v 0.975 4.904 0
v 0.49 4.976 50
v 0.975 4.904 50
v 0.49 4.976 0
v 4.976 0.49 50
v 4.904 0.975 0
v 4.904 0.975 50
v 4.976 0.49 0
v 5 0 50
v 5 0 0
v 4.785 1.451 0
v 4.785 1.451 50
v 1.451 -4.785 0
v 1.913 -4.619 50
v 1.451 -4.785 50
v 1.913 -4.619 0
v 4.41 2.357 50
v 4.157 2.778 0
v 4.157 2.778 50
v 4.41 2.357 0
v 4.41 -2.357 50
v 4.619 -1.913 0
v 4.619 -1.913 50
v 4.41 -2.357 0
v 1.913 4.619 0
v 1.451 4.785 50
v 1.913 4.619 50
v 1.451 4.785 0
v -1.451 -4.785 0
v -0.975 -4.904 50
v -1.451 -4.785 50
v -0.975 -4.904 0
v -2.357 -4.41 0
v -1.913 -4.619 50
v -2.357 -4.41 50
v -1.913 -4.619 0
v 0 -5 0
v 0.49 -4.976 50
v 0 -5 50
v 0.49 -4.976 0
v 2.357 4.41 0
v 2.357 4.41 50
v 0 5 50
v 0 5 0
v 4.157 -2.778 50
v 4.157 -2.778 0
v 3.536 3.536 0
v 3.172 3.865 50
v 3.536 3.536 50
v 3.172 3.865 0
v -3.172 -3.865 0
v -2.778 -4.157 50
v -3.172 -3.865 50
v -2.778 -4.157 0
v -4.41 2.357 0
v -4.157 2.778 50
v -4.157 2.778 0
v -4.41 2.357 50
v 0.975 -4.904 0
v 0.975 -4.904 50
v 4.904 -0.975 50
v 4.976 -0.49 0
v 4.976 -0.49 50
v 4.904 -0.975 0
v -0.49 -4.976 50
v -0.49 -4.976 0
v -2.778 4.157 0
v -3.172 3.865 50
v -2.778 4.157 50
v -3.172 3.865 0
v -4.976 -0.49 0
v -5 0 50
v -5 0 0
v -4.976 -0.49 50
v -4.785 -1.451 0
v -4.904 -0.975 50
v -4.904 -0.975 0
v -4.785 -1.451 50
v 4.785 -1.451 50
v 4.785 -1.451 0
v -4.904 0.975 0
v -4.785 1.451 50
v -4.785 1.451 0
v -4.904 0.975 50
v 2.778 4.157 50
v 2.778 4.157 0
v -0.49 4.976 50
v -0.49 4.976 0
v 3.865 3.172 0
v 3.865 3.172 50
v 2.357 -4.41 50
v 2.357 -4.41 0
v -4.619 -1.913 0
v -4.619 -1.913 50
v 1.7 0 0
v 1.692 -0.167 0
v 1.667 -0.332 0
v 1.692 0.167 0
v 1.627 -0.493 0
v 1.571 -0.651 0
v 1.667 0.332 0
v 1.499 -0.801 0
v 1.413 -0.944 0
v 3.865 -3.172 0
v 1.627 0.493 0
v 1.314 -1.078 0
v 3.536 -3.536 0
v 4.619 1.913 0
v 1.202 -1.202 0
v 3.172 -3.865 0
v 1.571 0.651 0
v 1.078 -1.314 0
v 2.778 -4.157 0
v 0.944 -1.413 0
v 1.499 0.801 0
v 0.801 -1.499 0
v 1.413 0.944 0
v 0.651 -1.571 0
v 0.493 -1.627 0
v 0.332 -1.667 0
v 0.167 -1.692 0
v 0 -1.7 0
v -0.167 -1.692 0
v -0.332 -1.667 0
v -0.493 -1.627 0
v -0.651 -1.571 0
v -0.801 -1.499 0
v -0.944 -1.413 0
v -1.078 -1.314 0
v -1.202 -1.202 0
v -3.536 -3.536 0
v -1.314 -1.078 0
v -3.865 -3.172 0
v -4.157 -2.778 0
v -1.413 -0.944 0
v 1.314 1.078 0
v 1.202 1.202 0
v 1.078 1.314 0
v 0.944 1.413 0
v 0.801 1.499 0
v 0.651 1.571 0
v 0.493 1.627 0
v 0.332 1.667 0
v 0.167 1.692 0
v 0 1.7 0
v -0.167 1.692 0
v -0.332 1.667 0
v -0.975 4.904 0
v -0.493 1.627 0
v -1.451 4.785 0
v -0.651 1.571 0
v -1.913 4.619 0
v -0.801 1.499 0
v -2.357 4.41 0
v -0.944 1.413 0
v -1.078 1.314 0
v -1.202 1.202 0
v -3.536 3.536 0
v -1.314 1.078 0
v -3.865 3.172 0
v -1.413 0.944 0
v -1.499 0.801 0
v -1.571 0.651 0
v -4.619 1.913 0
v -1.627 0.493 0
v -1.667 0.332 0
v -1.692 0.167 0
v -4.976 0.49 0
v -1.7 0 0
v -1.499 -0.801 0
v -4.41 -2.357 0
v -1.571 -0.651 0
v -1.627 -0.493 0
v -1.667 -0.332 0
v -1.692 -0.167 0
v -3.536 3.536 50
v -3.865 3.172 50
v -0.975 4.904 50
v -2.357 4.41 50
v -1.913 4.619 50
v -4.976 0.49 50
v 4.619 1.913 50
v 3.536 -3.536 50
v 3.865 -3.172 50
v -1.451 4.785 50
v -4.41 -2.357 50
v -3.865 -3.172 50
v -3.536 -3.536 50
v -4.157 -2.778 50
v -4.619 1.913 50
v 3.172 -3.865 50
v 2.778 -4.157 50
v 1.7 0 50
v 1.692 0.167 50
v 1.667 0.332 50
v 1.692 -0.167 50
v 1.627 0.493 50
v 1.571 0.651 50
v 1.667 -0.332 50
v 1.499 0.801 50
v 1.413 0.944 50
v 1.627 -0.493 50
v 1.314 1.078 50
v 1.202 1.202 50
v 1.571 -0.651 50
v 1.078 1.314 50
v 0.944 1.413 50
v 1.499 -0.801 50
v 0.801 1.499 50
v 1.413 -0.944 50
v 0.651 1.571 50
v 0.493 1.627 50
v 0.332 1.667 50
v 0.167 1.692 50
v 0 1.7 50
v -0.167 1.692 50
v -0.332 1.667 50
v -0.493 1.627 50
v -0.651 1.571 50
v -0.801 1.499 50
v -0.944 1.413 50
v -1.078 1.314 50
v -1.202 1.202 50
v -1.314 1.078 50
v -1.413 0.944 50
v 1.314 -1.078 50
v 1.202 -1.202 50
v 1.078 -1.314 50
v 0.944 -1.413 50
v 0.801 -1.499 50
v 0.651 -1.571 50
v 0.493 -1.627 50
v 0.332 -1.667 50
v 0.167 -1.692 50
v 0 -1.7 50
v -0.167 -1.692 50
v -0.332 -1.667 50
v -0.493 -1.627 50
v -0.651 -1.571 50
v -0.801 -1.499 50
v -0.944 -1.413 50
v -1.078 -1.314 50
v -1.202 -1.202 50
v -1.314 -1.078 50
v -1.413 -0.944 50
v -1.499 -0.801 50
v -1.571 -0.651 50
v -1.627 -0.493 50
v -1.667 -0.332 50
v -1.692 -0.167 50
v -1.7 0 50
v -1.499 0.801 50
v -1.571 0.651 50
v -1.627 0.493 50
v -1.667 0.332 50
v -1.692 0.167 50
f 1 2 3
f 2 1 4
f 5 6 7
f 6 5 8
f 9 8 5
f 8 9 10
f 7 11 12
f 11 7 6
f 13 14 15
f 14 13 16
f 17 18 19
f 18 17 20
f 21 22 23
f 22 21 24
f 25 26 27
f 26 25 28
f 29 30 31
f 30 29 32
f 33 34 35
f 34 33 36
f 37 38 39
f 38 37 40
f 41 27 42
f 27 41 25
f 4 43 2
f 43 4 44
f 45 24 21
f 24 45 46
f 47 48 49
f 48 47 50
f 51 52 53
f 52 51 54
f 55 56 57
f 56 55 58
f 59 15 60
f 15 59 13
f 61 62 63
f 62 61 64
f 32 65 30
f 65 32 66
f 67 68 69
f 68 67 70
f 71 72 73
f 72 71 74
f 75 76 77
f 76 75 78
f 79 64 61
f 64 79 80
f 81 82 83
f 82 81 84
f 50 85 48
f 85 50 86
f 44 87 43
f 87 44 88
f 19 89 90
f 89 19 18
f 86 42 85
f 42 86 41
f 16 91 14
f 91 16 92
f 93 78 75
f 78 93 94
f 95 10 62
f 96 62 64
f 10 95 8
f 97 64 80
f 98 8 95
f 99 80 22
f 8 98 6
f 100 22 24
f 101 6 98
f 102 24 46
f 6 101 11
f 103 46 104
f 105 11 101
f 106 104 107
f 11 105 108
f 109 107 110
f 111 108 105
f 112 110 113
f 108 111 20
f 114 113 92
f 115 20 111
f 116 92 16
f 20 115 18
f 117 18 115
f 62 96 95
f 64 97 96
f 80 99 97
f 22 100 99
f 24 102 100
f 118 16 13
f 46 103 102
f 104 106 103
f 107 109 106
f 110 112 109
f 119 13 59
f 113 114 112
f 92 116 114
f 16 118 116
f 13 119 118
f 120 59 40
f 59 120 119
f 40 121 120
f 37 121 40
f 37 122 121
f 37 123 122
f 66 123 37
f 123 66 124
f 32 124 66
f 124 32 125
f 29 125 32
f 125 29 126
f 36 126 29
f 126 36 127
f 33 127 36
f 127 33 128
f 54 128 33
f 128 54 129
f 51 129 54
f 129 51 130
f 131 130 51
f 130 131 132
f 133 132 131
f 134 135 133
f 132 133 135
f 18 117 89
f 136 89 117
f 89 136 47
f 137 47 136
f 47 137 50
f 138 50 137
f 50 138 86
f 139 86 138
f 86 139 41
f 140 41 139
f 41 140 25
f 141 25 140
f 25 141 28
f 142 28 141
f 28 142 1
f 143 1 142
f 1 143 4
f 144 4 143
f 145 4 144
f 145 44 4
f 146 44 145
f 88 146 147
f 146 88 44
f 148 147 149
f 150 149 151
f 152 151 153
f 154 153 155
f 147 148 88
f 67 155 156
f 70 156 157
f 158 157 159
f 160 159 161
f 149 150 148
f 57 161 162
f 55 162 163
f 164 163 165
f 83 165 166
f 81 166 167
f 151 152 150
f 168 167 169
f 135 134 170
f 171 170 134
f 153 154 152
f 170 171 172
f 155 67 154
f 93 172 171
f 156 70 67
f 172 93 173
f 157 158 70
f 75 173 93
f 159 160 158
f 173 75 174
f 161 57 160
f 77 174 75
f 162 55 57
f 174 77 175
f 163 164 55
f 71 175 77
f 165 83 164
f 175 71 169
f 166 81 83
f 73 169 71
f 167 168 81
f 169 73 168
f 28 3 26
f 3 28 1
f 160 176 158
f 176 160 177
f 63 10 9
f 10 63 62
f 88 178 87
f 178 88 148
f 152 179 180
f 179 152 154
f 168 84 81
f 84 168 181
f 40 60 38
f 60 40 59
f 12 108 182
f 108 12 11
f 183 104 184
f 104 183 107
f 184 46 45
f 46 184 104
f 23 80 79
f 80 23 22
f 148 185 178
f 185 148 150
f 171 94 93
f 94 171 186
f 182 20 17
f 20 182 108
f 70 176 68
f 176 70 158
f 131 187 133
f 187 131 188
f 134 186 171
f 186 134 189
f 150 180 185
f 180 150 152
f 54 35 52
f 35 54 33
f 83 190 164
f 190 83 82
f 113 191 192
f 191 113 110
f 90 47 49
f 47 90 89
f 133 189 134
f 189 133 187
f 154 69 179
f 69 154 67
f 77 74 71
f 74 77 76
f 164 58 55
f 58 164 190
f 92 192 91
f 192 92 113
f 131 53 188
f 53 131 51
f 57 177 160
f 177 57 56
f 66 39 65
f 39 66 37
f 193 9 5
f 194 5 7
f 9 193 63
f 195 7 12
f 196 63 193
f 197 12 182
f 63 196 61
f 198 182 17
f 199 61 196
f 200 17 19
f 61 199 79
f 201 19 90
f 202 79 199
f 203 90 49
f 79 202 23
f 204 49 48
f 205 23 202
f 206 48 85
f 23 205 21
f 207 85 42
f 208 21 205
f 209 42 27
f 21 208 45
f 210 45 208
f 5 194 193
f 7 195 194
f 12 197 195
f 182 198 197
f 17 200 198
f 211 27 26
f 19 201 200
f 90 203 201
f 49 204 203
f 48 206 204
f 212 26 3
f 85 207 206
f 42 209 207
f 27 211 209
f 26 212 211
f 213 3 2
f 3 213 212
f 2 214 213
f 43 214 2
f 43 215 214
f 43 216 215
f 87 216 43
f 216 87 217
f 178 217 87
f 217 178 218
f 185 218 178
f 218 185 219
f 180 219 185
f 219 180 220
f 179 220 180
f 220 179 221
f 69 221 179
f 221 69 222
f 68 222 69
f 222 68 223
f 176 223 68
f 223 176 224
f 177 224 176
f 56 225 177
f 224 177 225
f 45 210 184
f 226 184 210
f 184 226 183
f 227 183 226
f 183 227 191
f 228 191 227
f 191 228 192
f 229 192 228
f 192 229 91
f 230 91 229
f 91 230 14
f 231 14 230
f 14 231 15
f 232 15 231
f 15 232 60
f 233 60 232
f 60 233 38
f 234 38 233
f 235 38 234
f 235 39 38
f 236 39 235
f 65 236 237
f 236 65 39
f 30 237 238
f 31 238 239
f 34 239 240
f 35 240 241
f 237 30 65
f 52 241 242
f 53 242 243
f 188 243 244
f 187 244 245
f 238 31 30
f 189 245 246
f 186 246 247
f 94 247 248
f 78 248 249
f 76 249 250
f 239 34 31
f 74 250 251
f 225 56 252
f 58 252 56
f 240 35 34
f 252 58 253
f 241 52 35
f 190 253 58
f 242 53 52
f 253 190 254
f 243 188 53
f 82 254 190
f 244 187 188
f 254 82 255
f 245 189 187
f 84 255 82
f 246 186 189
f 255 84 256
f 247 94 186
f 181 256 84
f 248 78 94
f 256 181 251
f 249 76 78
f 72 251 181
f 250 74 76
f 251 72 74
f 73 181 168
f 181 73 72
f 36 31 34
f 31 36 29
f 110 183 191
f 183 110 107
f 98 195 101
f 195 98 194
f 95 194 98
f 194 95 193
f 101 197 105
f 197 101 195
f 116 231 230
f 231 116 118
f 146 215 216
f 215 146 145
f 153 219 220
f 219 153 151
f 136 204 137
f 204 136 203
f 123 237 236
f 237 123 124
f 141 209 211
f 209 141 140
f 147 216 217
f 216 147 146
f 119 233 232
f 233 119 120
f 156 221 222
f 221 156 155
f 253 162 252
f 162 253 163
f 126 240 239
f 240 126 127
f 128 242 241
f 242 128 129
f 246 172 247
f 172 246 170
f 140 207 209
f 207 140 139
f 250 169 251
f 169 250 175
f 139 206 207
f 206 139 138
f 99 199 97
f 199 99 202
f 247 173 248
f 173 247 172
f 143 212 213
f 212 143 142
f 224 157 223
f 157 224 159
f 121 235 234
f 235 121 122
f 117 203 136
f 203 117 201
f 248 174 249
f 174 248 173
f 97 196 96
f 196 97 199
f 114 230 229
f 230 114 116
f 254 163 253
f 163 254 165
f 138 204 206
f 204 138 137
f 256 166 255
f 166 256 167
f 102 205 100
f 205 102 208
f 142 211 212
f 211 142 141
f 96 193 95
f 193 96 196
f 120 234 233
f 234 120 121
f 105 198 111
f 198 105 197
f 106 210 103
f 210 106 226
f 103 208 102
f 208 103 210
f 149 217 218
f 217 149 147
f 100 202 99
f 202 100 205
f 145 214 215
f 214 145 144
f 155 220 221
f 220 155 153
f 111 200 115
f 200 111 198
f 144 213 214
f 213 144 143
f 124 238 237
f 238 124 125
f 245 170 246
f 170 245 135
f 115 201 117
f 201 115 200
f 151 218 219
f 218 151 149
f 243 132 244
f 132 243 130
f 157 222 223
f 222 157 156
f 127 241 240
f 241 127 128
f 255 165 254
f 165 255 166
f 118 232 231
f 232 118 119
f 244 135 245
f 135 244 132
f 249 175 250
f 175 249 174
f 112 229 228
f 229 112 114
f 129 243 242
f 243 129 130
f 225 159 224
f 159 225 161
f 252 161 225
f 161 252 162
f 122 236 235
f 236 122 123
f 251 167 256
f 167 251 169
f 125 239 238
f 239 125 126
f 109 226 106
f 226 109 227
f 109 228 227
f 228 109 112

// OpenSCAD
// file: ../lib.scad
// Solar Rover - shared helper modules
include <config.scad>

// Rounded rectangle plate, centred in XY, sitting on Z=0.
module rbox(size, r=4) {
    x = size[0]; y = size[1]; z = size[2];
    hull() for (sx=[-1,1], sy=[-1,1])
        translate([sx*(x/2-r), sy*(y/2-r), 0]) cylinder(r=r, h=z);
}

// Vertical hole through everything (subtract). Centred on the origin.
module hole(d, h=200) { translate([0,0,-h/2]) cylinder(d=d, h=h); }

// Heat-set insert pocket opening upward at Z=top.
module insert_m3(top) { translate([0,0,top-m3_insert_h]) cylinder(d=m3_insert_d, h=m3_insert_h+0.01); }
module insert_m25(top) { translate([0,0,top-4.5]) cylinder(d=m25_insert_d, h=4.51); }

// Boss for an insert: cylinder from z0 to z1, with insert pocket at the top.
module insert_boss_m3(z0, z1, od=8) {
    difference() {
        translate([0,0,z0]) cylinder(d=od, h=z1-z0);
        insert_m3(z1);
    }
}

// Slot of length l (centre-to-centre) along X, diameter d.
module slot(l, d, h=200) {
    hull() for (sx=[-1,1]) translate([sx*l/2,0,-h/2]) cylinder(d=d, h=h);
}

// Counterbored M3 clearance hole, head at Z=top going down.
module m3_cbore(top, depth=m3_head_h) {
    hole(m3_clear);
    translate([0,0,top-depth]) cylinder(d=m3_head_d, h=depth+50);
}

// Captive hex nut pocket, opening at Z=z (nut goes in from that face).
module m3_nut_pocket(z, depth=m3_nut_h+0.4) {
    translate([0,0,z-depth]) cylinder(d=m3_nut_af/cos(30), h=depth+0.01, $fn=6);
}

// Pair of zip-tie slots (for modules without mounting holes), spaced s apart along X.
module zip_slots(s=30, w=4, l=2.2) {
    for (sx=[-1,1]) translate([sx*s/2,0,0]) cube([l, w, 50], center=true);
}

// D-shaped bore for TT motor shafts.
module d_bore(h=50, extra=0) {
    intersection() {
        cylinder(d=tt_shaft_d+extra, h=h);
        translate([-(tt_shaft_d+extra)/2, -(tt_shaft_flat+extra)/2, 0])
            cube([tt_shaft_d+extra, tt_shaft_flat+extra, h]);
    }
}

// Simple spur gear (trapezoid teeth), module m, z teeth, thickness t. Good enough
// for a slow servo gripper; not a precision involute.
module spur_gear(m=1.25, z=16, t=6, bore=0) {
    rp = m*z/2; ra = rp + m; rf = rp - 1.25*m;
    difference() {
        linear_extrude(t) union() {
            circle(r=rf, $fn=z*4);
            for (i=[0:z-1]) rotate(i*360/z)
                polygon([[rf*cos(-90/z*1.1), rf*sin(-90/z*1.1)],
                         [ra*cos(-90/z*0.45), ra*sin(-90/z*0.45)],
                         [ra*cos( 90/z*0.45), ra*sin( 90/z*0.45)],
                         [rf*cos( 90/z*1.1), rf*sin( 90/z*1.1)]]);
        }
        if (bore > 0) hole(bore);
    }
}

// Servo pocket for an MG996R lying with its output axis along +Z.
// Case centred so the OUTPUT SHAFT is at the origin; case top at Z=0.
module mg996_case_neg(extra=tol) {
    translate([-mg996_shaft_off-extra, -mg996_w/2-extra, -mg996_h-extra])
        cube([mg996_l+2*extra, mg996_w+2*extra, mg996_h+extra+0.01]);
}
module mg996_flange_holes(d=m3_clear, h=60) {
    cx = mg996_l/2 - mg996_shaft_off;
    for (sx=[-1,1], sy=[-1,1])
        translate([cx+sx*mg996_hole_dx/2, sy*mg996_hole_dy/2, -h/2]) cylinder(d=d, h=h);
}
module mg90_case_neg(extra=tol) {
    translate([-mg90_shaft_off-extra, -mg90_w/2-extra, -mg90_h-extra])
        cube([mg90_l+2*extra, mg90_w+2*extra, mg90_h+extra+0.01]);
}
module mg90_flange_holes(d=m2_pilot, h=60) {
    cx = mg90_l/2 - mg90_shaft_off;
    for (sx=[-1,1]) translate([cx+sx*mg90_hole_dx/2, 0, -h/2]) cylinder(d=d, h=h);
}
// Round MG996R horn screw pattern (4 holes) + centre relief.
module mg996_horn_holes(d=m3_clear) {
    hole(9);
    for (a=[0:90:270]) rotate(a) translate([mg996_horn_hole_r,0,0]) hole(d);
}
// file: ../config.scad
// Solar Rover - shared dimensions (all mm)
// Coordinate system: X = forward, Y = left, Z = up. Origin = deck centre, ground at Z=0.
//
// Values marked MEASURE come from typical datasheets/clones and vary between
// suppliers. Measure your parts with calipers and edit them here before printing;
// every part reads its dimensions from this file.

$fn = 64;

// ---------- print / fit ----------
tol        = 0.25;   // general clearance per side
wall       = 2.4;    // default wall (6 perimeters at 0.4 mm nozzle)

// ---------- fasteners ----------
m3_clear     = 3.4;   // M3 clearance hole
m3_insert_d  = 4.1;   // hole for M3x5x4 brass heat-set insert (OD ~4.6)
m3_insert_h  = 5.5;   // insert hole depth
m3_head_d    = 6.2;   // socket head counterbore
m3_head_h    = 3.2;
m3_nut_af    = 5.6;   // nut across flats (+clearance)
m3_nut_h     = 2.6;
m25_clear    = 2.9;
m25_insert_d = 3.5;   // M2.5 insert hole (OD ~4.0)
m2_clear     = 2.4;
m2_pilot     = 1.7;   // pilot hole for M2 thread-forming screw

// ---------- deck ----------
deck_l     = 300;     // printed as two 150 mm halves
deck_w     = 146;
deck_t     = 4;
rib_h      = 8;
rib_w      = 2.4;
flange_h   = 14;      // joint flange (bolts the halves together)
flange_t   = 5;

// ---------- drive ----------
wheel_d       = 65;
wheel_w       = 26;
axle_z        = wheel_d/2;    // axle height above ground
axle_x        = 100;          // front axle at +axle_x, rear at -axle_x
// TT gear motor (dual-shaft, 1:48). MEASURE.
tt_body_l     = 64;           // along X (gearbox + motor can)
tt_body_t     = 22.5;         // along Y (shaft direction)
tt_body_h     = 18.8;         // along Z
tt_shaft_from_end = 11.3;     // shaft centre to gearbox front end
tt_shaft_d    = 5.4;          // D-shaft across round
tt_shaft_flat = 3.7;          // D-shaft across flats
tt_shaft_len  = 9;            // per side, beyond the body face
// two through-holes parallel to the shaft, positions relative to shaft centre [x, z]. MEASURE.
tt_holes      = [[-20.0, 5.5], [-20.0, -5.5]];
motor_outer_y = 72;           // motor face nearest the wheel
clamp_t       = 3;            // clamp plate thickness
deck_bottom_z = axle_z + tt_body_h/2 + clamp_t;   // 44.6
deck_top_z    = deck_bottom_z + deck_t;

// ---------- encoder ----------
enc_slots   = 20;
enc_disc_d  = 22;
enc_disc_t  = 1.6;

// ---------- turret / arm ----------
turret_x      = 108;
turret_d      = 84;           // base OD; top plate skirt overlaps it
turret_h      = 48;           // fixed base height above deck (servo hangs inside)
turret_deck_r = 30;           // 4x M3 at 45/135/225/315 deg: turret base to deck
turret_bolts  = [[20,28],[-20,28],[20,-28],[-20,-28]];  // module interface on the turret top (4x M3)
shoulder_z    = 45;           // shoulder axis above the turret top plate
// MG996R servo. MEASURE.
mg996_l   = 40.7;  mg996_w = 19.7;  mg996_h = 37.0;   // case (h = to top of case)
mg996_flange_l = 54.5; mg996_flange_z = 27.5;  mg996_flange_t = 2.5;
mg996_hole_dx = 49.5; mg996_hole_dy = 10.0; mg996_hole_d = 4.5;
mg996_shaft_off = 10.0;       // output shaft centre from case end
mg996_spline_h  = 6.0;        // case top to horn face
mg996_horn_d    = 22;         // round metal horn
mg996_horn_hole_r = 7.5;      // horn screw circle radius (MEASURE: usually 4 holes)
// MG90S servo. MEASURE.
mg90_l = 22.8; mg90_w = 12.2; mg90_h = 22.7;
mg90_flange_l = 32.5; mg90_flange_z = 16.0; mg90_flange_t = 2.5;
mg90_hole_dx = 27.6; mg90_hole_d = 2.0;
mg90_shaft_off = 6.0;
mg90_spline_h = 5.0;
mg90_horn_d = 7;              // horn hub (single-arm horn)

link_upper = 100;   // shoulder -> elbow
link_fore  = 90;    // elbow -> wrist
link_hand  = 70;    // wrist -> fingertip

// ---------- power / electronics ----------
cell_holder = [77, 80, 21];   // 4x18650 holder footprint. MEASURE.
pi0_holes   = [58, 23];       // Raspberry Pi Zero 2 W, M2.5
pca_holes   = [55.9, 19.0];   // Adafruit-style PCA9685, M2.5. MEASURE (clones vary)
esp_exp_holes = [47, 70];     // ESP32 38-pin screw-terminal expansion board (77x54 mm), M3. MEASURE.
cradle_tb6612 = [20.5, 20.5];  // TB6612FNG breakout board outline. MEASURE.
cradle_mp1584 = [22.4, 17.0];  // MP1584 mini buck outline. MEASURE.
module_slot_w = 2.6;          // module-plate slots: M2/M2.5 screw + nut, or a 2.5 mm zip tie
tray_standoff_h = 32;         // power tray top to logic tray underside
// charge tray: a slotted plate on 4 legs over the battery holder
charge_tray_c    = [-106, 0];         // centre on the deck (same as the battery holder)
charge_tray_size = [76, 102];         // X, Y
charge_tray_z    = 24;                // deck top to plate underside (holder is 21 mm tall)
charge_tray_legs = [for (x=[-34,28], sy=[-1,1]) [x, sy*46]];   // relative to the centre; the front pair clears the motor-clamp inserts

// ---------- body / solar ----------
panel     = [110, 136, 3];    // 6V 2W panel: X, Y, thickness. MEASURE.
roof_post_h = 75;             // deck top to roof tray underside (room for plugged-in jumpers)
tray_frame  = 4;
roof_front_x = 60;            // front tray spans -60..60, rear tray -180..-60
// main file
// Crossbar spacer between the two upper-arm plates (print 1). M3x60 + nyloc nut.
include <../config.scad>
use <../lib.scad>
difference() { cylinder(d=10, h=50); hole(m3_clear); }
